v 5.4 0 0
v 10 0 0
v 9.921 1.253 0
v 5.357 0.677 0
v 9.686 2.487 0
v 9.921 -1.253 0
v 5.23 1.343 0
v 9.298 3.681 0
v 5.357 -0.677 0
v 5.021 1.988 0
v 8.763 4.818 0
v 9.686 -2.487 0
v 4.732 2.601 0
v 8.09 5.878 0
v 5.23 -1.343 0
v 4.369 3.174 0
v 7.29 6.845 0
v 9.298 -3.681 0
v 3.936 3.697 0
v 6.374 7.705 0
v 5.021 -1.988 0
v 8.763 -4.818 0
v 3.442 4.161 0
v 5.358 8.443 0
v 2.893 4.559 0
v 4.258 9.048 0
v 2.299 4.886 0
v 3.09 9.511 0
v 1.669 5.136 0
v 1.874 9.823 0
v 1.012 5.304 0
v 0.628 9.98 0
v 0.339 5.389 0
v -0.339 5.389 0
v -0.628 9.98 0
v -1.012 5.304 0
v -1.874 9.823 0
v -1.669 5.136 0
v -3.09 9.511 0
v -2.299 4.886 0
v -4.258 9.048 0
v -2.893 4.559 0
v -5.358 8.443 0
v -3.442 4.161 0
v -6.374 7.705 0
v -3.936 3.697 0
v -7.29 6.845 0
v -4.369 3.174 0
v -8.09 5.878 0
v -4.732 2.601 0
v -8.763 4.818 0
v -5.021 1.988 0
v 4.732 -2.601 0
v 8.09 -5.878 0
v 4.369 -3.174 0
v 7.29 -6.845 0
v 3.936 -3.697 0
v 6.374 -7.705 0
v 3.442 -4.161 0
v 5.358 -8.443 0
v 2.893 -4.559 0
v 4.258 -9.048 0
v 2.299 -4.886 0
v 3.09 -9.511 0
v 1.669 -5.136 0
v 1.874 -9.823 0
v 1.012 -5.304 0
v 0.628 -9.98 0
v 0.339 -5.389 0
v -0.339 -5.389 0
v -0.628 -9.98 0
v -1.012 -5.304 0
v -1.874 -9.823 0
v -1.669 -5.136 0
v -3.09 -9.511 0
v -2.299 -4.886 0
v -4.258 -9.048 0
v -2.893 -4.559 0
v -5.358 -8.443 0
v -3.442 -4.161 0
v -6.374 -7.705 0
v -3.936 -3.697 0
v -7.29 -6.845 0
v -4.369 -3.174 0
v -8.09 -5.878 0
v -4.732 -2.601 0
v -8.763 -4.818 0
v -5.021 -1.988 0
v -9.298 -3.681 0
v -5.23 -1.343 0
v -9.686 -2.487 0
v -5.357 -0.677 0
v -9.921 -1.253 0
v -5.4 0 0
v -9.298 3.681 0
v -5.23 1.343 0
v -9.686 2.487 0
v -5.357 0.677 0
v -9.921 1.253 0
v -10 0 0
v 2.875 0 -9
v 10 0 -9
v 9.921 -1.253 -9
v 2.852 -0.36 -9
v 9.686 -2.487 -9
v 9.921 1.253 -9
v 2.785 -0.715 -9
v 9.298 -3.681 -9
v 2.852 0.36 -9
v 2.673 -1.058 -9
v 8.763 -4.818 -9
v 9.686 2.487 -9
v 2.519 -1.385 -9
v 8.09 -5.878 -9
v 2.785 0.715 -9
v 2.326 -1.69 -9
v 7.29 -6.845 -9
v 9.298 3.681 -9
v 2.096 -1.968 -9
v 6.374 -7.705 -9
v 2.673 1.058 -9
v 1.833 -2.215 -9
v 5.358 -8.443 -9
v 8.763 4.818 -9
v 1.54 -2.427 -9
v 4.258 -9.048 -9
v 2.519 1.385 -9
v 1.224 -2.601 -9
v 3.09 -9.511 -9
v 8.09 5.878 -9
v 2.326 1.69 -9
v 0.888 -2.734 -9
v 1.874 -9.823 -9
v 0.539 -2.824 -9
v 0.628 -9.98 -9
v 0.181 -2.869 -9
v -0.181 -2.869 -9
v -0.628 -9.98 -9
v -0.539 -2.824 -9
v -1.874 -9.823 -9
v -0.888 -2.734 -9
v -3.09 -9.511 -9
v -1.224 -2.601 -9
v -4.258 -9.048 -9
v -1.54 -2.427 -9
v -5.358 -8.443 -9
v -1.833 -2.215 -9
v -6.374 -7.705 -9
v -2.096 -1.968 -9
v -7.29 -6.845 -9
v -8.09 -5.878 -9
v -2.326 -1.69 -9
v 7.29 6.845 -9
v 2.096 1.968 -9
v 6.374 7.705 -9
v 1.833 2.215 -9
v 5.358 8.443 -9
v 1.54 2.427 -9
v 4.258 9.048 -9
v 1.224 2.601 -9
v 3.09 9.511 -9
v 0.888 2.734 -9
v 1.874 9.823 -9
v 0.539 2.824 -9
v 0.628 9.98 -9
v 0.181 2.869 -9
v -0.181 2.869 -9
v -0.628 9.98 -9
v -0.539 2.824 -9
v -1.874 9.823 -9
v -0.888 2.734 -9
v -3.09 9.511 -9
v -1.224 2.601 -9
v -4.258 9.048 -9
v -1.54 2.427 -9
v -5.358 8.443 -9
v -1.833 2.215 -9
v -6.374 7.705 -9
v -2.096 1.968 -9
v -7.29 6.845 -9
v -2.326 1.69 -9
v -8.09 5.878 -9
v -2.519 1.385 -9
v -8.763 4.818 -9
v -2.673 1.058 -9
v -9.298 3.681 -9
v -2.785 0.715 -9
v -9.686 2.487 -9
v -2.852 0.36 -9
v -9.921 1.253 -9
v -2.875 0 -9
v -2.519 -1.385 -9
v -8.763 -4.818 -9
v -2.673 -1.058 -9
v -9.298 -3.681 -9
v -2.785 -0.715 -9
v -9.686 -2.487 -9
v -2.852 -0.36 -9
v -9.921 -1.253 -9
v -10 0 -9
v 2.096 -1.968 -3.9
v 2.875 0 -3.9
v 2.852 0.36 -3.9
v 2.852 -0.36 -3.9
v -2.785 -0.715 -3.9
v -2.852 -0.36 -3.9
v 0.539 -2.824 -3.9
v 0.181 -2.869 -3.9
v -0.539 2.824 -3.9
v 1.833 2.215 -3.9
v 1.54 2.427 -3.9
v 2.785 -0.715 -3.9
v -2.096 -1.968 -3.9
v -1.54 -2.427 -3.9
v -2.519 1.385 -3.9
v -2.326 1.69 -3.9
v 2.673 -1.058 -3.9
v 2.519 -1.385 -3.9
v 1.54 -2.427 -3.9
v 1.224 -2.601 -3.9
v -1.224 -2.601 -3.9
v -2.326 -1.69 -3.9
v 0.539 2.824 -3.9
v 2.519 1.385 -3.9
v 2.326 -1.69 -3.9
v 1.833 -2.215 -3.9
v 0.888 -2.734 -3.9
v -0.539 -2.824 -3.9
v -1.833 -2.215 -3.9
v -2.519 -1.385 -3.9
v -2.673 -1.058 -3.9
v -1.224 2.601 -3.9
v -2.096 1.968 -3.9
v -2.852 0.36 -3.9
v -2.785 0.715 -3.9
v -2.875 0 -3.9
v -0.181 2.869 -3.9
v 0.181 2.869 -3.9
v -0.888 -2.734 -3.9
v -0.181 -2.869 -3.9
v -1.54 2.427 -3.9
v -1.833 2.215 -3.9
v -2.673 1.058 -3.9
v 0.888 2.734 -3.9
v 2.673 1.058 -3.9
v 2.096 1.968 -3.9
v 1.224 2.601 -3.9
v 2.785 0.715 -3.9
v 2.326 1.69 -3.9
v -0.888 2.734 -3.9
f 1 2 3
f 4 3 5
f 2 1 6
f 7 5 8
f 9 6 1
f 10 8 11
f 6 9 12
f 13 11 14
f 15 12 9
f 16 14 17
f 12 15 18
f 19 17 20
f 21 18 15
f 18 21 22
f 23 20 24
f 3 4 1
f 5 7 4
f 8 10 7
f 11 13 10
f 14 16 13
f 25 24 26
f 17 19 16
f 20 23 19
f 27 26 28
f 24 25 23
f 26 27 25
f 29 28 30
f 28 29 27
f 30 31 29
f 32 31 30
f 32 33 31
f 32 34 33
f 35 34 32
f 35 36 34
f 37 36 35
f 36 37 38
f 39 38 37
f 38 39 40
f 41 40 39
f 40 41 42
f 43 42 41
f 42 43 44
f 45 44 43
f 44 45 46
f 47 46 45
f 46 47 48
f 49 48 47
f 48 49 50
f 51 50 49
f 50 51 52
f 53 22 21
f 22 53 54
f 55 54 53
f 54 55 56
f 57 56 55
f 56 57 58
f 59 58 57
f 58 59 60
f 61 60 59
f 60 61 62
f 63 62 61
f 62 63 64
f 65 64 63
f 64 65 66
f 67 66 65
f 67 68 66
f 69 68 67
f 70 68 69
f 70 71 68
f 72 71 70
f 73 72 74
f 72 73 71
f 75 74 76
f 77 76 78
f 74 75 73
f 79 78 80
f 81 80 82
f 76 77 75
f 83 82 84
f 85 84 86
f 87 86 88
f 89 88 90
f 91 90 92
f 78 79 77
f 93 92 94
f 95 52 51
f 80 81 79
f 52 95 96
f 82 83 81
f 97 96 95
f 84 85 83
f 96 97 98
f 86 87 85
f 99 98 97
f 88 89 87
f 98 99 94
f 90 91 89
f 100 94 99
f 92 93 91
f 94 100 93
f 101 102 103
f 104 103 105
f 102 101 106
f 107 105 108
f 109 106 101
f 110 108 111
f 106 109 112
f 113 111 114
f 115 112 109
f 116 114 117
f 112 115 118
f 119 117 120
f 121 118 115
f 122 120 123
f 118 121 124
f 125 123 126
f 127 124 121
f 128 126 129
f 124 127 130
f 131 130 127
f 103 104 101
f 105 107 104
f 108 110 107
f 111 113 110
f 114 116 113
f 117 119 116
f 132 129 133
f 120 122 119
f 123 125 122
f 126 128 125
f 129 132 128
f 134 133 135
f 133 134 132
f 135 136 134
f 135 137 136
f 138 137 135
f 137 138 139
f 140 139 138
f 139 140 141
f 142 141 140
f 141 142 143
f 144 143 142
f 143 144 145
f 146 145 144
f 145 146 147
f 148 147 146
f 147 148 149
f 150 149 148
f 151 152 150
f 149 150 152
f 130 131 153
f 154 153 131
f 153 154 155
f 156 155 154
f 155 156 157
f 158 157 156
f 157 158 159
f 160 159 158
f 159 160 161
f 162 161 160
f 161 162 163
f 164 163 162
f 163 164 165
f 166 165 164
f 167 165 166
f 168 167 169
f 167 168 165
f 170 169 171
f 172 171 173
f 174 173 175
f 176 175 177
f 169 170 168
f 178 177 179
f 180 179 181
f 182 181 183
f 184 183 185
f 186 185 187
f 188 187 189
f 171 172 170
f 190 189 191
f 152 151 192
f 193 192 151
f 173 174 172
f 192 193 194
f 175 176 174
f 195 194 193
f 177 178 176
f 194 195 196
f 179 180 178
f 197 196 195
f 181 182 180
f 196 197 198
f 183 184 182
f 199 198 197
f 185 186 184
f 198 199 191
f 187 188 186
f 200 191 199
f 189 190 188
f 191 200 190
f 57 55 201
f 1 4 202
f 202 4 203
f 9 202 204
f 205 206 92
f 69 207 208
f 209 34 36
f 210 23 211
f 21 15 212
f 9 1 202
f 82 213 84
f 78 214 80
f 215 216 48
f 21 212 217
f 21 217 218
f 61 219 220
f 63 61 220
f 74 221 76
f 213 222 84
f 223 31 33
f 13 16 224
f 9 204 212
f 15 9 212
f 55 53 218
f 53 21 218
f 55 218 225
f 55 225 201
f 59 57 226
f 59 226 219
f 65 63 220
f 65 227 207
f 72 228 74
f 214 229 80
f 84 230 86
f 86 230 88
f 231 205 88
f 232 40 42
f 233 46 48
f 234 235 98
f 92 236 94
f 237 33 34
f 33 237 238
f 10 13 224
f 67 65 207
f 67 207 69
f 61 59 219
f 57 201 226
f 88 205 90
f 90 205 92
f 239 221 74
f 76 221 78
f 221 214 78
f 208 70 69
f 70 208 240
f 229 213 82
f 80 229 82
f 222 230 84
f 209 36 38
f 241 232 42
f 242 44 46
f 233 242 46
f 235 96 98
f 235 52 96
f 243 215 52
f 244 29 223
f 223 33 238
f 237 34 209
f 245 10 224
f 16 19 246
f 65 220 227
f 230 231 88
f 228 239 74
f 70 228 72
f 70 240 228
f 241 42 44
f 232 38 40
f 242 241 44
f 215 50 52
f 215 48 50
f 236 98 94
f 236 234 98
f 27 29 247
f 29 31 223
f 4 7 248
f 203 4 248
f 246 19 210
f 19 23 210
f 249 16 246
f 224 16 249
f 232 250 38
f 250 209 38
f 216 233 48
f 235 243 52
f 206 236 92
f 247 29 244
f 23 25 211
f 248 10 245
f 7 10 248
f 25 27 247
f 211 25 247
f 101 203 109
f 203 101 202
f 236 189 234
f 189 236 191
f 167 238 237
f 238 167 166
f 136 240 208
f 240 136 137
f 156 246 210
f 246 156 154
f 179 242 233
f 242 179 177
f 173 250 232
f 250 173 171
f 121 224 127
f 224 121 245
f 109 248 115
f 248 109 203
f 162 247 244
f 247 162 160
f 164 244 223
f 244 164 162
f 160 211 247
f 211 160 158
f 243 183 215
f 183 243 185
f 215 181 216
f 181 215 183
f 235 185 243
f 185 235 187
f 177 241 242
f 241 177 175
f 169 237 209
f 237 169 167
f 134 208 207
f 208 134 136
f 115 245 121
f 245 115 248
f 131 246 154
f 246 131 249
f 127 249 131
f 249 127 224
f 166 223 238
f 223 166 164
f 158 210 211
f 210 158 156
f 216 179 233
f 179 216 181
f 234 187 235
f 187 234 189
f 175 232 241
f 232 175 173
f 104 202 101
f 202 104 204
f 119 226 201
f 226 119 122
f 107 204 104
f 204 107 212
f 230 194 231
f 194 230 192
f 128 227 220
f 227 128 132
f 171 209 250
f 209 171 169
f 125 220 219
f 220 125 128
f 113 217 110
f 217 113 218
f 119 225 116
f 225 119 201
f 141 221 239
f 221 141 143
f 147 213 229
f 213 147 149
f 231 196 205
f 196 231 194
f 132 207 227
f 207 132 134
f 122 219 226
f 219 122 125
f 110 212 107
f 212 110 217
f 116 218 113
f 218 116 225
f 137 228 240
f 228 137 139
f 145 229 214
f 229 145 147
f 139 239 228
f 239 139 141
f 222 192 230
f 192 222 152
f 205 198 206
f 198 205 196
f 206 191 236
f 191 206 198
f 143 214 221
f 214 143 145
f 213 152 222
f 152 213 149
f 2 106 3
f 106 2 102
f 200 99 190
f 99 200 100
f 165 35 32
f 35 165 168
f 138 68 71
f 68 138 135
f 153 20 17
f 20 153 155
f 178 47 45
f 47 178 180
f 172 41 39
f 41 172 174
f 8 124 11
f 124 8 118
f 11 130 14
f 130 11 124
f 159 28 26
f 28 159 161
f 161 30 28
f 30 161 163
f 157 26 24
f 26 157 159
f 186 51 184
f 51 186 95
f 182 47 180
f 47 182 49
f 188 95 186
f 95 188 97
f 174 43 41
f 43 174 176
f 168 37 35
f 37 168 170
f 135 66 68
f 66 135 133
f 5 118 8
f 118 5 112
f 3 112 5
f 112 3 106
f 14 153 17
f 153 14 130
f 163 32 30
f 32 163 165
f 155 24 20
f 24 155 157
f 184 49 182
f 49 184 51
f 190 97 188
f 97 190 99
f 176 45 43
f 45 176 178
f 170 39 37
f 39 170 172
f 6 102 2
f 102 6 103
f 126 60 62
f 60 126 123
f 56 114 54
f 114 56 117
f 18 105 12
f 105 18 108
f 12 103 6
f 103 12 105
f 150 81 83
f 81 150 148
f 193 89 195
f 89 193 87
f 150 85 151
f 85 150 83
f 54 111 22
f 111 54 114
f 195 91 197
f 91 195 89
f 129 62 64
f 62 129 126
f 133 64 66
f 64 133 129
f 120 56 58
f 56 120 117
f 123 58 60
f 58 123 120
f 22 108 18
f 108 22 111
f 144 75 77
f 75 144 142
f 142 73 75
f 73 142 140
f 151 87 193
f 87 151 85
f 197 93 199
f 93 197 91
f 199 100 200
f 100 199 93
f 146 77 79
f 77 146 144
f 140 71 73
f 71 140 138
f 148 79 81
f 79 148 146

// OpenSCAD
$fn = 50;


difference() {
	union() {
		translate(v = [0, 0, -9.0000000000]) {
			cylinder(h = 9, r = 10.0000000000);
		}
		cylinder(h = 0, r = 19.0000000000);
	}
	union() {
		translate(v = [0, 0, 0]) {
			rotate(a = [0, 0, 0]) {
				difference() {
					union() {
						#translate(v = [0, 0, -9.0000000000]) {
							cylinder(h = 9, r = 2.6000000000);
						}
						#translate(v = [0, 0, -3.9000000000]) {
							cylinder(h = 3.9000000000, r = 10.0000000000, r1 = 2.8750000000, r2 = 5.4000000000);
						}
						#translate(v = [0, 0, -9.0000000000]) {
							cylinder(h = 9, r = 2.8750000000);
						}
						#translate(v = [0, 0, -9.0000000000]) {
							cylinder(h = 9, r = 2.6000000000);
						}
					}
					union();
				}
			}
		}
	}
}
